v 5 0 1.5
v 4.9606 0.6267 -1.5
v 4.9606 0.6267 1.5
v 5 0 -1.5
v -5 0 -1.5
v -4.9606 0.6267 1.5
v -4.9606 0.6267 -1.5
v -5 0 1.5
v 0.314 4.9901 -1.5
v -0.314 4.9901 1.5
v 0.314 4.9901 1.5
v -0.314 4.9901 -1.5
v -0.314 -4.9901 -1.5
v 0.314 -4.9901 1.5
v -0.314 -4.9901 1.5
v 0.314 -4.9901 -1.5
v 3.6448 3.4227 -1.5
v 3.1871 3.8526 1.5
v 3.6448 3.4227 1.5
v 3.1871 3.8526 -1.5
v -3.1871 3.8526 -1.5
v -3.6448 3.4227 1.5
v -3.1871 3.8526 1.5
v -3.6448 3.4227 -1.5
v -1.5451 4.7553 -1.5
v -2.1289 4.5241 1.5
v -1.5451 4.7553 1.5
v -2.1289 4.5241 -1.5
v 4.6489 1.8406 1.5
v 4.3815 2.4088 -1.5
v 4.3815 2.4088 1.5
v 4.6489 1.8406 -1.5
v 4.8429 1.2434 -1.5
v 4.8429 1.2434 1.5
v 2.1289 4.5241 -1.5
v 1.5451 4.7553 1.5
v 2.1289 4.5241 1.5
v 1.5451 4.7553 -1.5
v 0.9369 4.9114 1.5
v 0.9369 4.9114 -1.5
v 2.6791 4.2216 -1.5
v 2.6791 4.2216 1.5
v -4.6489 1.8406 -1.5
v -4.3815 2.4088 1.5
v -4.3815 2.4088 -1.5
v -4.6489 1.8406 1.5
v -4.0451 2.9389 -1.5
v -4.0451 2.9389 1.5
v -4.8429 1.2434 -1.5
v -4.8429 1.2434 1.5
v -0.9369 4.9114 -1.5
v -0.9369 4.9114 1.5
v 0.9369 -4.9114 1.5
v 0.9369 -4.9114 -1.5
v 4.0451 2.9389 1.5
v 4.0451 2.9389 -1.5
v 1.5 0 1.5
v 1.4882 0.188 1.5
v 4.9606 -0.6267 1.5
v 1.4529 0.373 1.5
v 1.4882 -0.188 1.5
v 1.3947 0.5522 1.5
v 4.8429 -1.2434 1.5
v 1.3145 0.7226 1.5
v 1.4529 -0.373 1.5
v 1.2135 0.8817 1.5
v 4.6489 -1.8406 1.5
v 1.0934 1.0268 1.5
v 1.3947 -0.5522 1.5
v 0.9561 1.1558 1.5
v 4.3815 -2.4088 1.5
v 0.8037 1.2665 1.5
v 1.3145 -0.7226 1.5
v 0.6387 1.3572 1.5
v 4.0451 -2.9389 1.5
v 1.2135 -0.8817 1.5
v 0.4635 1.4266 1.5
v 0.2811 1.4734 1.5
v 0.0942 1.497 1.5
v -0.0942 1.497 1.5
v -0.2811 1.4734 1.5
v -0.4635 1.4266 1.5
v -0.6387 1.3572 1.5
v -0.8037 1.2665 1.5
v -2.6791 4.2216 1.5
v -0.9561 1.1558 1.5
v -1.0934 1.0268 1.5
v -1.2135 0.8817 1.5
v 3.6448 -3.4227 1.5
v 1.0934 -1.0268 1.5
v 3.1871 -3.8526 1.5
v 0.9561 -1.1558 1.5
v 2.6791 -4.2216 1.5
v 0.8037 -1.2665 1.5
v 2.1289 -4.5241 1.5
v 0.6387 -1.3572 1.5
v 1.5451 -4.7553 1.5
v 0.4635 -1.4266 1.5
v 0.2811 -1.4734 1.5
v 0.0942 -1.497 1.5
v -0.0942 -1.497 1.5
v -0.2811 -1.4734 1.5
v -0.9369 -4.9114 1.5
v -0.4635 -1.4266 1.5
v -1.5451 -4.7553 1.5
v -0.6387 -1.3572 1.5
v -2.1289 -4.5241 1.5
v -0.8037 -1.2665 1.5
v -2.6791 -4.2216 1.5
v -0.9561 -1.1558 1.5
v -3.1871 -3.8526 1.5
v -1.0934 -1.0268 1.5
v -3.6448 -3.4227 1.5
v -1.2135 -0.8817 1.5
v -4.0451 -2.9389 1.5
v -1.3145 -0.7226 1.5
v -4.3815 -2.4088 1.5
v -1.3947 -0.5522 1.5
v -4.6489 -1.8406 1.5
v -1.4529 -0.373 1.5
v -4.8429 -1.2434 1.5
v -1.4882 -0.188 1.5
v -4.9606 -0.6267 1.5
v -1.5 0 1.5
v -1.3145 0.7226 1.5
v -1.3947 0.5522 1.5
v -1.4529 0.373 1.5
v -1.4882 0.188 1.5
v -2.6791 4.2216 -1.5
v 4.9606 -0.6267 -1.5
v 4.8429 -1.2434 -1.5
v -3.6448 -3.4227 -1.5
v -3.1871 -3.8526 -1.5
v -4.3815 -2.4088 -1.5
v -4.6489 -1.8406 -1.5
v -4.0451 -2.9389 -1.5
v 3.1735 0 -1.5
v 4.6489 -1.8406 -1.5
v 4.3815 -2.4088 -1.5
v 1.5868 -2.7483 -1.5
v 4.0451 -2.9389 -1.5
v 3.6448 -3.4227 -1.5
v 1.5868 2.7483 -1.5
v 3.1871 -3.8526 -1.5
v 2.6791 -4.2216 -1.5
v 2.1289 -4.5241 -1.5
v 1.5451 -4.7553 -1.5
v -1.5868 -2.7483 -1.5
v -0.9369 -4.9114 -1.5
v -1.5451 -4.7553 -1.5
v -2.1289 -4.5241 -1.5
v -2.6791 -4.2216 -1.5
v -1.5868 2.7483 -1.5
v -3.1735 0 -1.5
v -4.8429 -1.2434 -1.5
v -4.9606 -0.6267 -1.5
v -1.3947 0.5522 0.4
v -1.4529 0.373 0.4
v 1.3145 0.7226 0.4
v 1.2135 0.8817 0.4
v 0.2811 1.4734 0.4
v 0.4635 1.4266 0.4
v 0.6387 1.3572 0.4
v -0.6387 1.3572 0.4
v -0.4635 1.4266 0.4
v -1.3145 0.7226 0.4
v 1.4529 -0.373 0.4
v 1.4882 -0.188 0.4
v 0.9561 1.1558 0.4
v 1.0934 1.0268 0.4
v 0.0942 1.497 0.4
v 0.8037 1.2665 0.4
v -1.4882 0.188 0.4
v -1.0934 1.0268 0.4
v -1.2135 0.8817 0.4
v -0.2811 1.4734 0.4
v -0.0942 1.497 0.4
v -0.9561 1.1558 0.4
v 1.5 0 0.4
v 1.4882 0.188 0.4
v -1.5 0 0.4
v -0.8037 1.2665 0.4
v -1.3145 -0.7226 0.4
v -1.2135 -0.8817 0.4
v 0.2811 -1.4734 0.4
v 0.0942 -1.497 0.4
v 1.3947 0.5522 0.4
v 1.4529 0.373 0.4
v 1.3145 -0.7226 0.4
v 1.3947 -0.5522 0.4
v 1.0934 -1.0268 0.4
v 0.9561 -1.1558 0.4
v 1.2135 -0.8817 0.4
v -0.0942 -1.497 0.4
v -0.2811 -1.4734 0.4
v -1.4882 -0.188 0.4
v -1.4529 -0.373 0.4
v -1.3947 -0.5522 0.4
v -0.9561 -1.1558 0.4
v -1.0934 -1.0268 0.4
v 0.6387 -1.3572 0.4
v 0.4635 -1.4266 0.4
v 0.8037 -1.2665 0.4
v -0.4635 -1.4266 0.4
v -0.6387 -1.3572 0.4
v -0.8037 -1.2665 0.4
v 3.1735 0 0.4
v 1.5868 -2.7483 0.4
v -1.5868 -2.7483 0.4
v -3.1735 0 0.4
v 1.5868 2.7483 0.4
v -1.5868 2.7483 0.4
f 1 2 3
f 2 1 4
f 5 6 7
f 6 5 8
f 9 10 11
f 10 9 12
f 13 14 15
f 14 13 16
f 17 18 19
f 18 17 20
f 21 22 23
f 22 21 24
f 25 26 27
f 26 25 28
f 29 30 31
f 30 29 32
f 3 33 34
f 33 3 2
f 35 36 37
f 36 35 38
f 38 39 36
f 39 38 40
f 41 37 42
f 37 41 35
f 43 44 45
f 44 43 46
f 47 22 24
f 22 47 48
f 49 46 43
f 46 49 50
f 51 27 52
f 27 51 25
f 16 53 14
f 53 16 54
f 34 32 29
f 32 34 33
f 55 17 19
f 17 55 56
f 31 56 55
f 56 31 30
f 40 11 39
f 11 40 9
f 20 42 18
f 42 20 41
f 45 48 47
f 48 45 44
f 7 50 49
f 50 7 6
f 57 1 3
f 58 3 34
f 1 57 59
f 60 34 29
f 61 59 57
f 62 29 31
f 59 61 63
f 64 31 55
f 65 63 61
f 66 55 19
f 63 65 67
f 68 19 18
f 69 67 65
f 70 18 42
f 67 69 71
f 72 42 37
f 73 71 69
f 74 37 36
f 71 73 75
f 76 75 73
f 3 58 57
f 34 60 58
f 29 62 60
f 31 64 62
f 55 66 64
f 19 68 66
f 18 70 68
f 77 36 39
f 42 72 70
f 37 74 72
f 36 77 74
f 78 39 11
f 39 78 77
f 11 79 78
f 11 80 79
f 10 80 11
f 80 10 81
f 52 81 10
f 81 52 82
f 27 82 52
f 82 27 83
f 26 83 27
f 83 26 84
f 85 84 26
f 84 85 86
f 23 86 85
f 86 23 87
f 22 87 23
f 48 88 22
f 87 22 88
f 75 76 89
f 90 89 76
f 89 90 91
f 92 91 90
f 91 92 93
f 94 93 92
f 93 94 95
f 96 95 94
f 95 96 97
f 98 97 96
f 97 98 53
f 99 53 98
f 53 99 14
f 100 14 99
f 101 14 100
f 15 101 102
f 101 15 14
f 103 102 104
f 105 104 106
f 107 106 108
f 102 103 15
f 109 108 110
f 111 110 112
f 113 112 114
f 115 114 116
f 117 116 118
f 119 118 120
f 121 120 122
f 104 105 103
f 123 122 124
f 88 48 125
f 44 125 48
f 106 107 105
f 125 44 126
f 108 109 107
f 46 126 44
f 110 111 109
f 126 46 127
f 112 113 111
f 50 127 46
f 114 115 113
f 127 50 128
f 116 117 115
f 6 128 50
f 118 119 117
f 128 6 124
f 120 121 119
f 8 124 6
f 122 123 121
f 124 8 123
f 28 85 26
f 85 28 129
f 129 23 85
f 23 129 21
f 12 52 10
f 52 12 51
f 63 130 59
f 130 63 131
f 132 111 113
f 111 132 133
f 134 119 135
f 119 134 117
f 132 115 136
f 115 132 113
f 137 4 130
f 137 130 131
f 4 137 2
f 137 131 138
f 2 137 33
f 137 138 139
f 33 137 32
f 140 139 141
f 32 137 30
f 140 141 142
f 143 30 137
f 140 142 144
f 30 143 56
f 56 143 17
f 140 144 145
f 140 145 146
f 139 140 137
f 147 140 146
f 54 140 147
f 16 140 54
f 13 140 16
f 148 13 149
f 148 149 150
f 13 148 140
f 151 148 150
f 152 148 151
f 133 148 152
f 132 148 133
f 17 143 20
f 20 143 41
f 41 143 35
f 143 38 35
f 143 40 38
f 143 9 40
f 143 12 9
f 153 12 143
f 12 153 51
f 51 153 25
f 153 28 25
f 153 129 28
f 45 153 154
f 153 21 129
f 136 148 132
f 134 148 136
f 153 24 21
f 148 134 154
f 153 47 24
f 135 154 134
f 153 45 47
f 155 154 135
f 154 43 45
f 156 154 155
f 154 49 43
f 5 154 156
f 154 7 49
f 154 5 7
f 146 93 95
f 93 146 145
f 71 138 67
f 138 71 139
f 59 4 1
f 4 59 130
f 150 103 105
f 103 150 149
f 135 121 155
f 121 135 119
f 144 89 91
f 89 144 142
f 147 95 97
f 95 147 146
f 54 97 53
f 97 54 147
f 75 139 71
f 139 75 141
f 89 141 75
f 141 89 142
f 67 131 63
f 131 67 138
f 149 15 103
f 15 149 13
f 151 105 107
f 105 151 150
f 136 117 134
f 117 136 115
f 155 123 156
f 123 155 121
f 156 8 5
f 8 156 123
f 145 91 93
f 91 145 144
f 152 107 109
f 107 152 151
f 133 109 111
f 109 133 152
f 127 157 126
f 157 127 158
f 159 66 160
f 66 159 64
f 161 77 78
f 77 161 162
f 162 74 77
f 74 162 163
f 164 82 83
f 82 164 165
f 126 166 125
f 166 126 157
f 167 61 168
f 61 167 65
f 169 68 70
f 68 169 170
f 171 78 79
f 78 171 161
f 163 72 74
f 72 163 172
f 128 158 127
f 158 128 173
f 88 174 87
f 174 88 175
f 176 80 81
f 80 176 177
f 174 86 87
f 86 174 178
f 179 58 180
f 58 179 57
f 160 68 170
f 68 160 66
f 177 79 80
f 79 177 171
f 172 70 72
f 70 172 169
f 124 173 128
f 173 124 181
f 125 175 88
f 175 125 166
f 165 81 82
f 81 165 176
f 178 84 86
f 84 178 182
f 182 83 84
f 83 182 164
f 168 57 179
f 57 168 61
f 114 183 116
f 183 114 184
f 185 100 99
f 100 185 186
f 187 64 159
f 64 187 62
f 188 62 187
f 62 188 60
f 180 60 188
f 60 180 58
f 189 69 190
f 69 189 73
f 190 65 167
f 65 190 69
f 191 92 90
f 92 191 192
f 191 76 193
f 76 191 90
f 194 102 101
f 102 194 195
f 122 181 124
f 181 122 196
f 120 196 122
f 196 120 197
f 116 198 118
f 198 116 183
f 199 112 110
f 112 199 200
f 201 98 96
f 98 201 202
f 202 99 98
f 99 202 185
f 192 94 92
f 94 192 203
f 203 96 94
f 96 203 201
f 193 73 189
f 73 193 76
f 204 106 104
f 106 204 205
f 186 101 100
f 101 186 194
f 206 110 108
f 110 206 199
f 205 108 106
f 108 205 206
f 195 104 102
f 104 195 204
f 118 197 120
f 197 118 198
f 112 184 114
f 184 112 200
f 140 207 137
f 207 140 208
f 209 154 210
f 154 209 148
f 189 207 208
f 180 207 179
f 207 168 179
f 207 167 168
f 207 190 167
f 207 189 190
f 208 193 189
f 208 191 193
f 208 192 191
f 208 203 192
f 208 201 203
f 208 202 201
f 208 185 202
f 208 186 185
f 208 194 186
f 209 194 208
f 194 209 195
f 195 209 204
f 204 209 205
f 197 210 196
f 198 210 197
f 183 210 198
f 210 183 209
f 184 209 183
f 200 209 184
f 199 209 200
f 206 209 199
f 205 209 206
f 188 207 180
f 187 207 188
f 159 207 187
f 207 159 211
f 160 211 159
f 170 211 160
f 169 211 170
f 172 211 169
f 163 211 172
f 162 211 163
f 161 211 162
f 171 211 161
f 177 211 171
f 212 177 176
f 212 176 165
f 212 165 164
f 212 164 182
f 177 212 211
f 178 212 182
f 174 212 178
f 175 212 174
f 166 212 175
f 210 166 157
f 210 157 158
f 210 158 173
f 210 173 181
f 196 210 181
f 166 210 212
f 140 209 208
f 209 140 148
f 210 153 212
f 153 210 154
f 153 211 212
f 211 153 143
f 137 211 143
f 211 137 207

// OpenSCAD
$fn = 50;


difference() {
	union() {
		translate(v = [0, 0, -1.5000000000]) {
			rotate(a = [0, 0, 0]) {
				cylinder(h = 3, r = 5.0000000000);
			}
		}
		translate(v = [0, 0, -1.5000000000]) {
			rotate(a = [0, 0, 0]) {
				cylinder(h = 3, r = 3.0000000000);
			}
		}
	}
	union() {
		translate(v = [0, 0, -125.0000000000]) {
			rotate(a = [0, 0, 0]) {
				cylinder(h = 250, r = 1.5000000000);
			}
		}
		translate(v = [0, 0, -2.1000000000]) {
			rotate(a = [0, 0, 0]) {
				#translate(v = [0, 0, 0]) {
					rotate(a = [0, 0, 0]) {
						linear_extrude(height = 2.5000000000) {
							polygon(points = [[3.1735000000, 0.0000000000], [1.5867500000, 2.7483316189], [-1.5867500000, 2.7483316189], [-3.1735000000, 0.0000000000], [-1.5867500000, -2.7483316189], [1.5867500000, -2.7483316189]]);
						}
					}
				}
			}
		}
	}
}
